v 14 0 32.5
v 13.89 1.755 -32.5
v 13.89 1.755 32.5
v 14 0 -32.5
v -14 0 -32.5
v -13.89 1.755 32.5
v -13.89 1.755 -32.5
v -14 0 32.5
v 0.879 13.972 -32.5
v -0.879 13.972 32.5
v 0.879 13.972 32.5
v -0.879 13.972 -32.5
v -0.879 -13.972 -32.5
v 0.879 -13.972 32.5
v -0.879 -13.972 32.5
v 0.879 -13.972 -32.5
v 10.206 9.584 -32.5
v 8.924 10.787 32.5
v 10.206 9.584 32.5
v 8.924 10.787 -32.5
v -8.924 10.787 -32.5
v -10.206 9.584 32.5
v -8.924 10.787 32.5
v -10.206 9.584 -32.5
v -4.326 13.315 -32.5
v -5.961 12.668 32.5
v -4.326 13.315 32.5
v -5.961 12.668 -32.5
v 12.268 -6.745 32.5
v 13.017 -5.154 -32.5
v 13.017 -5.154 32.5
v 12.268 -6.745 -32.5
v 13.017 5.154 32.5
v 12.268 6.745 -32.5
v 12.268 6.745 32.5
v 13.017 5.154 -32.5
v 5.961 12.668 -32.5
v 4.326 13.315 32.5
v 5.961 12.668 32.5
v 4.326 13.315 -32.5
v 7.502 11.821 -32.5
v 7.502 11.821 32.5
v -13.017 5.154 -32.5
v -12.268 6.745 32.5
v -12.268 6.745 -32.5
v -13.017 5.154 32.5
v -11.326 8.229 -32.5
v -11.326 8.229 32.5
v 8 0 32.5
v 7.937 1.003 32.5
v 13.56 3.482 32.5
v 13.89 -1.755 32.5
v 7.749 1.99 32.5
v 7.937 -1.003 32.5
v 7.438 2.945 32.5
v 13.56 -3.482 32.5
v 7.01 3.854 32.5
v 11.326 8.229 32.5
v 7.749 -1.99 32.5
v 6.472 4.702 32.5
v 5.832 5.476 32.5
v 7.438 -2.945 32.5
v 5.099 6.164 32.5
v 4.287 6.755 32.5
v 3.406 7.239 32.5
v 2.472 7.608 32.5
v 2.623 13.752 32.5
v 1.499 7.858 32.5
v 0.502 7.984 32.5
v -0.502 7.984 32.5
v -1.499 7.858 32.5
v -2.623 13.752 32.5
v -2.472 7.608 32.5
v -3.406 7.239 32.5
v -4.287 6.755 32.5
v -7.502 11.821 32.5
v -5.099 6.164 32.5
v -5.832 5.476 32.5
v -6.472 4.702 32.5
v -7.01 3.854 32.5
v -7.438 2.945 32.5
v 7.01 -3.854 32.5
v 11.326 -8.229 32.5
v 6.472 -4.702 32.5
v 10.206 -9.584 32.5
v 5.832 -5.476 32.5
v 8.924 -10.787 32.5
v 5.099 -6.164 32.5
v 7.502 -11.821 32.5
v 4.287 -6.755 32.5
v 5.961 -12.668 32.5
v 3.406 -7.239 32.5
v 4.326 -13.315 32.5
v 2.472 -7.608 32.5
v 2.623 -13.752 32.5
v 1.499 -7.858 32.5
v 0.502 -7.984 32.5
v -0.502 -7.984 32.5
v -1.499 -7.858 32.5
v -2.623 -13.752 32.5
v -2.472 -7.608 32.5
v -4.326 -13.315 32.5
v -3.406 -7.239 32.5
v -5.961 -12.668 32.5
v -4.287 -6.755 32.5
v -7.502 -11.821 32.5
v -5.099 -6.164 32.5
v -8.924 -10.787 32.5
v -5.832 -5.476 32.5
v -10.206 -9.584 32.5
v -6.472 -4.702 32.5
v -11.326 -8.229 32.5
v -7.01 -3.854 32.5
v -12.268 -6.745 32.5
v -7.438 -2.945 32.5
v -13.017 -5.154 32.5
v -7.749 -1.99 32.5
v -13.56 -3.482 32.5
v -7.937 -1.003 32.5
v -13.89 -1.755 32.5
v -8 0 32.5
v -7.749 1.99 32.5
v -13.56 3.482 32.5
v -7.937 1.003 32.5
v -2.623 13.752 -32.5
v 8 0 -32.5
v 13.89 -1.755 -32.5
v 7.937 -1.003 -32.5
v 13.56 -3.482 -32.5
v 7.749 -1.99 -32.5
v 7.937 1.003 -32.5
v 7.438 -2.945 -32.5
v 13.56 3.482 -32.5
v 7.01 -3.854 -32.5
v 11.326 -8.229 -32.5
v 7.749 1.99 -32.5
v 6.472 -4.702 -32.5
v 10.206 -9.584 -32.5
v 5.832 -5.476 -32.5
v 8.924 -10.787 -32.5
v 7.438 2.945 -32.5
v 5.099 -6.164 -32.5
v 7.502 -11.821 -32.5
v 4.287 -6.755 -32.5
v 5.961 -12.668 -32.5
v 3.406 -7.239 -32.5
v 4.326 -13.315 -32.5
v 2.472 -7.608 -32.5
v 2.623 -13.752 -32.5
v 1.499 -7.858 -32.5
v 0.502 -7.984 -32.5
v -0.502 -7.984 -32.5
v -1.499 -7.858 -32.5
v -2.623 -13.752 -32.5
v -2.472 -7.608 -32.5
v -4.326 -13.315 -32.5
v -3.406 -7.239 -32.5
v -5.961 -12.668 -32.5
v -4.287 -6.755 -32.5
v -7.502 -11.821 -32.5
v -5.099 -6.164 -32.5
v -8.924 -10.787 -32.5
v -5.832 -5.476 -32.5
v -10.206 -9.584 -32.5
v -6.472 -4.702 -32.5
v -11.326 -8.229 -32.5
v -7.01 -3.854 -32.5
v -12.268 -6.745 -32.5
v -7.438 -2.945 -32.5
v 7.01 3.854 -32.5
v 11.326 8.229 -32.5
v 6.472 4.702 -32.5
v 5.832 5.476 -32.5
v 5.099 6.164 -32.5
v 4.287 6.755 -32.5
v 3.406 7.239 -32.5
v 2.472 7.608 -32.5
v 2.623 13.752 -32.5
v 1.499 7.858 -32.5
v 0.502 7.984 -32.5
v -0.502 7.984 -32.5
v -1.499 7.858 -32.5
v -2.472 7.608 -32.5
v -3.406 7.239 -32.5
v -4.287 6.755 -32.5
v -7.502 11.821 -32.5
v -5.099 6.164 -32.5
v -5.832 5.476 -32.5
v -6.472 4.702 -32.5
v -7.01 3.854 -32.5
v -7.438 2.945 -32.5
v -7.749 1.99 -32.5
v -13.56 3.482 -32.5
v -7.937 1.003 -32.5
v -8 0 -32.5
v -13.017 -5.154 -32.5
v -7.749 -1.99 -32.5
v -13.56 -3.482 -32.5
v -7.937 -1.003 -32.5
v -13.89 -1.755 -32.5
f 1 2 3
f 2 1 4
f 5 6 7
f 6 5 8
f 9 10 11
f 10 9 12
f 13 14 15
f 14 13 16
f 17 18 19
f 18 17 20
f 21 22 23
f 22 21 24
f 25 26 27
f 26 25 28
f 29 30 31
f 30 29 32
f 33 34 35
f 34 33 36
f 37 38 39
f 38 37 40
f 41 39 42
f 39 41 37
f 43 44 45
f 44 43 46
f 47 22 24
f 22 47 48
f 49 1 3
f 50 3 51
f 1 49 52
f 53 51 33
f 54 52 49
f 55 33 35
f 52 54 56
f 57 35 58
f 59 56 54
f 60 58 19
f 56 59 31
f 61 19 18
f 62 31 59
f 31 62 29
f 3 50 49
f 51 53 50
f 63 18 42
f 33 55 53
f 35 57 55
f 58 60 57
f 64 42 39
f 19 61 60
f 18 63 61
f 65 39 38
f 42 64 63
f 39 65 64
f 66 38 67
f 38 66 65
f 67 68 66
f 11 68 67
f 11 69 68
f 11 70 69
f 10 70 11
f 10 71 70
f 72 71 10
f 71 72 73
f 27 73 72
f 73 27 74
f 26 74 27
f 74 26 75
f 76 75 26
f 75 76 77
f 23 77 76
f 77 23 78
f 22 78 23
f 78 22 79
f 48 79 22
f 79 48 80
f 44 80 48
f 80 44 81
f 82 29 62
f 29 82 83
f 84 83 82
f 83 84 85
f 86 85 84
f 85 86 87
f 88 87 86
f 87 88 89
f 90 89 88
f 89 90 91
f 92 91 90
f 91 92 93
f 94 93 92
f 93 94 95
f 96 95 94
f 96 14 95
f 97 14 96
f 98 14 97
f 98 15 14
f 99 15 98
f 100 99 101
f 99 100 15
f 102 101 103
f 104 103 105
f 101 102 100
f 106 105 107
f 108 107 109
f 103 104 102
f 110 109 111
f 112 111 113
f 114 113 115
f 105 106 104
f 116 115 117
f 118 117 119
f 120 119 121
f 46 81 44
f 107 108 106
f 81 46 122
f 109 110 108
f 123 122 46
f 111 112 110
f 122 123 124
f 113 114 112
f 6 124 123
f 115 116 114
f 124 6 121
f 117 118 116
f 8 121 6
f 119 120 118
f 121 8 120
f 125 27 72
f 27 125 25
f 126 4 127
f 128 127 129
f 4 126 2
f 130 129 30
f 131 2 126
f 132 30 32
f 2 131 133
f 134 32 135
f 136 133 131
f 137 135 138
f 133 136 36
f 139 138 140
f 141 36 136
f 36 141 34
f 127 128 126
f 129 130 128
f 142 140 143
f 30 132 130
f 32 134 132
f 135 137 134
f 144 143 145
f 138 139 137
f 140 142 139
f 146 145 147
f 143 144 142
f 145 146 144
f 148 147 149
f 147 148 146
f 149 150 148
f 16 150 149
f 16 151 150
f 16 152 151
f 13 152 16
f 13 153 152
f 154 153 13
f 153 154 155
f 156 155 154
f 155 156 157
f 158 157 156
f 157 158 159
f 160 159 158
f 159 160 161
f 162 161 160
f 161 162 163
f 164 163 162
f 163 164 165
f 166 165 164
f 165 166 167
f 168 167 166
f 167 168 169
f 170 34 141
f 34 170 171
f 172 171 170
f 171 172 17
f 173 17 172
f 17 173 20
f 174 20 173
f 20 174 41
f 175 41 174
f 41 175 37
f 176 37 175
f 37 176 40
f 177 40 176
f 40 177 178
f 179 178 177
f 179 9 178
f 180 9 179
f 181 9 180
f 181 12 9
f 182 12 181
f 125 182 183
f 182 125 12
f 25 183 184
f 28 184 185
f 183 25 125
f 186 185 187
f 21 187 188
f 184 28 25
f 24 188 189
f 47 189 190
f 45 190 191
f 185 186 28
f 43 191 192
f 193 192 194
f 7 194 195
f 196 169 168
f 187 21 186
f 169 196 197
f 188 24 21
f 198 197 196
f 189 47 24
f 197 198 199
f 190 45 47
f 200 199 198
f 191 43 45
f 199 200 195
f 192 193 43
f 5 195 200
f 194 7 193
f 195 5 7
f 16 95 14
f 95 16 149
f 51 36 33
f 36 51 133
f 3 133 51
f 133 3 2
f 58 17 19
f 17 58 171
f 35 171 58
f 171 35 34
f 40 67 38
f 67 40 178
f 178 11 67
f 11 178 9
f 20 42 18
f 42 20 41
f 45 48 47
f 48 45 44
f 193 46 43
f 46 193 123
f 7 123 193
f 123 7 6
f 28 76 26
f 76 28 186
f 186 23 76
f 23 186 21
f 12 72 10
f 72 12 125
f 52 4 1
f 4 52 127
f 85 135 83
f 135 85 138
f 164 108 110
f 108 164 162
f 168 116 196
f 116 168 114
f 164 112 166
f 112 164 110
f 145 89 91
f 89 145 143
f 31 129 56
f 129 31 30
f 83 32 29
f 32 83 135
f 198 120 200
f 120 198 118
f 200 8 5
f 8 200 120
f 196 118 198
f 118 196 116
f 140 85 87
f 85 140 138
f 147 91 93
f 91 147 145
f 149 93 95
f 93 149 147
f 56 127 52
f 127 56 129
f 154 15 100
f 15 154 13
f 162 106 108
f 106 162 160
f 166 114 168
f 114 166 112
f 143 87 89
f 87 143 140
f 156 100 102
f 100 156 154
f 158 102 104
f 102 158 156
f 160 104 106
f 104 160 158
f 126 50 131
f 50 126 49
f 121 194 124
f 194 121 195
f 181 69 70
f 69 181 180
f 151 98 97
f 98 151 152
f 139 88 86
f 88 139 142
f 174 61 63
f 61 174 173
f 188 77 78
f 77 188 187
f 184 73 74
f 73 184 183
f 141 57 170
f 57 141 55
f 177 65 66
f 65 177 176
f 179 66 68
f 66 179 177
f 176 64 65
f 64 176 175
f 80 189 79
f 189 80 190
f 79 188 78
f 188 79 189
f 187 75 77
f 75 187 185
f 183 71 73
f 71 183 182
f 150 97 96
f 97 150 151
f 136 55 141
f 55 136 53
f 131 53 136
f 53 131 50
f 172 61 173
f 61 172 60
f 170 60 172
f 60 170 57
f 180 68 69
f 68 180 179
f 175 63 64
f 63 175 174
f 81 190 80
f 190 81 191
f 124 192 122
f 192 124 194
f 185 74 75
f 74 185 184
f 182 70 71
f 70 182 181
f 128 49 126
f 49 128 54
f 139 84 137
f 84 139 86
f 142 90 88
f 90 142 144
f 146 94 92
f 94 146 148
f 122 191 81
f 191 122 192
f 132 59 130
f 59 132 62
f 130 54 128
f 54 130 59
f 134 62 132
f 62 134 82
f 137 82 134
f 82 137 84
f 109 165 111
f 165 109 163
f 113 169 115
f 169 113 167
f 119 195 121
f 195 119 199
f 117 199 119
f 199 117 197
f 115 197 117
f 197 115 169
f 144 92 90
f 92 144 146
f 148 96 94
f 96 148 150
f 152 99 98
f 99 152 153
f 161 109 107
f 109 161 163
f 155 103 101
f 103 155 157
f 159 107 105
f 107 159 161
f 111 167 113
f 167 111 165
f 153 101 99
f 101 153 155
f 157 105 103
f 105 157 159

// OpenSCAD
$fn = 50;


difference() {
	union() {
		translate(v = [0, 0, -32.5000000000]) {
			cylinder(h = 65, r = 14.0000000000);
		}
	}
	union() {
		translate(v = [0, 0, -100.0000000000]) {
			cylinder(h = 200, r = 8);
		}
	}
}
